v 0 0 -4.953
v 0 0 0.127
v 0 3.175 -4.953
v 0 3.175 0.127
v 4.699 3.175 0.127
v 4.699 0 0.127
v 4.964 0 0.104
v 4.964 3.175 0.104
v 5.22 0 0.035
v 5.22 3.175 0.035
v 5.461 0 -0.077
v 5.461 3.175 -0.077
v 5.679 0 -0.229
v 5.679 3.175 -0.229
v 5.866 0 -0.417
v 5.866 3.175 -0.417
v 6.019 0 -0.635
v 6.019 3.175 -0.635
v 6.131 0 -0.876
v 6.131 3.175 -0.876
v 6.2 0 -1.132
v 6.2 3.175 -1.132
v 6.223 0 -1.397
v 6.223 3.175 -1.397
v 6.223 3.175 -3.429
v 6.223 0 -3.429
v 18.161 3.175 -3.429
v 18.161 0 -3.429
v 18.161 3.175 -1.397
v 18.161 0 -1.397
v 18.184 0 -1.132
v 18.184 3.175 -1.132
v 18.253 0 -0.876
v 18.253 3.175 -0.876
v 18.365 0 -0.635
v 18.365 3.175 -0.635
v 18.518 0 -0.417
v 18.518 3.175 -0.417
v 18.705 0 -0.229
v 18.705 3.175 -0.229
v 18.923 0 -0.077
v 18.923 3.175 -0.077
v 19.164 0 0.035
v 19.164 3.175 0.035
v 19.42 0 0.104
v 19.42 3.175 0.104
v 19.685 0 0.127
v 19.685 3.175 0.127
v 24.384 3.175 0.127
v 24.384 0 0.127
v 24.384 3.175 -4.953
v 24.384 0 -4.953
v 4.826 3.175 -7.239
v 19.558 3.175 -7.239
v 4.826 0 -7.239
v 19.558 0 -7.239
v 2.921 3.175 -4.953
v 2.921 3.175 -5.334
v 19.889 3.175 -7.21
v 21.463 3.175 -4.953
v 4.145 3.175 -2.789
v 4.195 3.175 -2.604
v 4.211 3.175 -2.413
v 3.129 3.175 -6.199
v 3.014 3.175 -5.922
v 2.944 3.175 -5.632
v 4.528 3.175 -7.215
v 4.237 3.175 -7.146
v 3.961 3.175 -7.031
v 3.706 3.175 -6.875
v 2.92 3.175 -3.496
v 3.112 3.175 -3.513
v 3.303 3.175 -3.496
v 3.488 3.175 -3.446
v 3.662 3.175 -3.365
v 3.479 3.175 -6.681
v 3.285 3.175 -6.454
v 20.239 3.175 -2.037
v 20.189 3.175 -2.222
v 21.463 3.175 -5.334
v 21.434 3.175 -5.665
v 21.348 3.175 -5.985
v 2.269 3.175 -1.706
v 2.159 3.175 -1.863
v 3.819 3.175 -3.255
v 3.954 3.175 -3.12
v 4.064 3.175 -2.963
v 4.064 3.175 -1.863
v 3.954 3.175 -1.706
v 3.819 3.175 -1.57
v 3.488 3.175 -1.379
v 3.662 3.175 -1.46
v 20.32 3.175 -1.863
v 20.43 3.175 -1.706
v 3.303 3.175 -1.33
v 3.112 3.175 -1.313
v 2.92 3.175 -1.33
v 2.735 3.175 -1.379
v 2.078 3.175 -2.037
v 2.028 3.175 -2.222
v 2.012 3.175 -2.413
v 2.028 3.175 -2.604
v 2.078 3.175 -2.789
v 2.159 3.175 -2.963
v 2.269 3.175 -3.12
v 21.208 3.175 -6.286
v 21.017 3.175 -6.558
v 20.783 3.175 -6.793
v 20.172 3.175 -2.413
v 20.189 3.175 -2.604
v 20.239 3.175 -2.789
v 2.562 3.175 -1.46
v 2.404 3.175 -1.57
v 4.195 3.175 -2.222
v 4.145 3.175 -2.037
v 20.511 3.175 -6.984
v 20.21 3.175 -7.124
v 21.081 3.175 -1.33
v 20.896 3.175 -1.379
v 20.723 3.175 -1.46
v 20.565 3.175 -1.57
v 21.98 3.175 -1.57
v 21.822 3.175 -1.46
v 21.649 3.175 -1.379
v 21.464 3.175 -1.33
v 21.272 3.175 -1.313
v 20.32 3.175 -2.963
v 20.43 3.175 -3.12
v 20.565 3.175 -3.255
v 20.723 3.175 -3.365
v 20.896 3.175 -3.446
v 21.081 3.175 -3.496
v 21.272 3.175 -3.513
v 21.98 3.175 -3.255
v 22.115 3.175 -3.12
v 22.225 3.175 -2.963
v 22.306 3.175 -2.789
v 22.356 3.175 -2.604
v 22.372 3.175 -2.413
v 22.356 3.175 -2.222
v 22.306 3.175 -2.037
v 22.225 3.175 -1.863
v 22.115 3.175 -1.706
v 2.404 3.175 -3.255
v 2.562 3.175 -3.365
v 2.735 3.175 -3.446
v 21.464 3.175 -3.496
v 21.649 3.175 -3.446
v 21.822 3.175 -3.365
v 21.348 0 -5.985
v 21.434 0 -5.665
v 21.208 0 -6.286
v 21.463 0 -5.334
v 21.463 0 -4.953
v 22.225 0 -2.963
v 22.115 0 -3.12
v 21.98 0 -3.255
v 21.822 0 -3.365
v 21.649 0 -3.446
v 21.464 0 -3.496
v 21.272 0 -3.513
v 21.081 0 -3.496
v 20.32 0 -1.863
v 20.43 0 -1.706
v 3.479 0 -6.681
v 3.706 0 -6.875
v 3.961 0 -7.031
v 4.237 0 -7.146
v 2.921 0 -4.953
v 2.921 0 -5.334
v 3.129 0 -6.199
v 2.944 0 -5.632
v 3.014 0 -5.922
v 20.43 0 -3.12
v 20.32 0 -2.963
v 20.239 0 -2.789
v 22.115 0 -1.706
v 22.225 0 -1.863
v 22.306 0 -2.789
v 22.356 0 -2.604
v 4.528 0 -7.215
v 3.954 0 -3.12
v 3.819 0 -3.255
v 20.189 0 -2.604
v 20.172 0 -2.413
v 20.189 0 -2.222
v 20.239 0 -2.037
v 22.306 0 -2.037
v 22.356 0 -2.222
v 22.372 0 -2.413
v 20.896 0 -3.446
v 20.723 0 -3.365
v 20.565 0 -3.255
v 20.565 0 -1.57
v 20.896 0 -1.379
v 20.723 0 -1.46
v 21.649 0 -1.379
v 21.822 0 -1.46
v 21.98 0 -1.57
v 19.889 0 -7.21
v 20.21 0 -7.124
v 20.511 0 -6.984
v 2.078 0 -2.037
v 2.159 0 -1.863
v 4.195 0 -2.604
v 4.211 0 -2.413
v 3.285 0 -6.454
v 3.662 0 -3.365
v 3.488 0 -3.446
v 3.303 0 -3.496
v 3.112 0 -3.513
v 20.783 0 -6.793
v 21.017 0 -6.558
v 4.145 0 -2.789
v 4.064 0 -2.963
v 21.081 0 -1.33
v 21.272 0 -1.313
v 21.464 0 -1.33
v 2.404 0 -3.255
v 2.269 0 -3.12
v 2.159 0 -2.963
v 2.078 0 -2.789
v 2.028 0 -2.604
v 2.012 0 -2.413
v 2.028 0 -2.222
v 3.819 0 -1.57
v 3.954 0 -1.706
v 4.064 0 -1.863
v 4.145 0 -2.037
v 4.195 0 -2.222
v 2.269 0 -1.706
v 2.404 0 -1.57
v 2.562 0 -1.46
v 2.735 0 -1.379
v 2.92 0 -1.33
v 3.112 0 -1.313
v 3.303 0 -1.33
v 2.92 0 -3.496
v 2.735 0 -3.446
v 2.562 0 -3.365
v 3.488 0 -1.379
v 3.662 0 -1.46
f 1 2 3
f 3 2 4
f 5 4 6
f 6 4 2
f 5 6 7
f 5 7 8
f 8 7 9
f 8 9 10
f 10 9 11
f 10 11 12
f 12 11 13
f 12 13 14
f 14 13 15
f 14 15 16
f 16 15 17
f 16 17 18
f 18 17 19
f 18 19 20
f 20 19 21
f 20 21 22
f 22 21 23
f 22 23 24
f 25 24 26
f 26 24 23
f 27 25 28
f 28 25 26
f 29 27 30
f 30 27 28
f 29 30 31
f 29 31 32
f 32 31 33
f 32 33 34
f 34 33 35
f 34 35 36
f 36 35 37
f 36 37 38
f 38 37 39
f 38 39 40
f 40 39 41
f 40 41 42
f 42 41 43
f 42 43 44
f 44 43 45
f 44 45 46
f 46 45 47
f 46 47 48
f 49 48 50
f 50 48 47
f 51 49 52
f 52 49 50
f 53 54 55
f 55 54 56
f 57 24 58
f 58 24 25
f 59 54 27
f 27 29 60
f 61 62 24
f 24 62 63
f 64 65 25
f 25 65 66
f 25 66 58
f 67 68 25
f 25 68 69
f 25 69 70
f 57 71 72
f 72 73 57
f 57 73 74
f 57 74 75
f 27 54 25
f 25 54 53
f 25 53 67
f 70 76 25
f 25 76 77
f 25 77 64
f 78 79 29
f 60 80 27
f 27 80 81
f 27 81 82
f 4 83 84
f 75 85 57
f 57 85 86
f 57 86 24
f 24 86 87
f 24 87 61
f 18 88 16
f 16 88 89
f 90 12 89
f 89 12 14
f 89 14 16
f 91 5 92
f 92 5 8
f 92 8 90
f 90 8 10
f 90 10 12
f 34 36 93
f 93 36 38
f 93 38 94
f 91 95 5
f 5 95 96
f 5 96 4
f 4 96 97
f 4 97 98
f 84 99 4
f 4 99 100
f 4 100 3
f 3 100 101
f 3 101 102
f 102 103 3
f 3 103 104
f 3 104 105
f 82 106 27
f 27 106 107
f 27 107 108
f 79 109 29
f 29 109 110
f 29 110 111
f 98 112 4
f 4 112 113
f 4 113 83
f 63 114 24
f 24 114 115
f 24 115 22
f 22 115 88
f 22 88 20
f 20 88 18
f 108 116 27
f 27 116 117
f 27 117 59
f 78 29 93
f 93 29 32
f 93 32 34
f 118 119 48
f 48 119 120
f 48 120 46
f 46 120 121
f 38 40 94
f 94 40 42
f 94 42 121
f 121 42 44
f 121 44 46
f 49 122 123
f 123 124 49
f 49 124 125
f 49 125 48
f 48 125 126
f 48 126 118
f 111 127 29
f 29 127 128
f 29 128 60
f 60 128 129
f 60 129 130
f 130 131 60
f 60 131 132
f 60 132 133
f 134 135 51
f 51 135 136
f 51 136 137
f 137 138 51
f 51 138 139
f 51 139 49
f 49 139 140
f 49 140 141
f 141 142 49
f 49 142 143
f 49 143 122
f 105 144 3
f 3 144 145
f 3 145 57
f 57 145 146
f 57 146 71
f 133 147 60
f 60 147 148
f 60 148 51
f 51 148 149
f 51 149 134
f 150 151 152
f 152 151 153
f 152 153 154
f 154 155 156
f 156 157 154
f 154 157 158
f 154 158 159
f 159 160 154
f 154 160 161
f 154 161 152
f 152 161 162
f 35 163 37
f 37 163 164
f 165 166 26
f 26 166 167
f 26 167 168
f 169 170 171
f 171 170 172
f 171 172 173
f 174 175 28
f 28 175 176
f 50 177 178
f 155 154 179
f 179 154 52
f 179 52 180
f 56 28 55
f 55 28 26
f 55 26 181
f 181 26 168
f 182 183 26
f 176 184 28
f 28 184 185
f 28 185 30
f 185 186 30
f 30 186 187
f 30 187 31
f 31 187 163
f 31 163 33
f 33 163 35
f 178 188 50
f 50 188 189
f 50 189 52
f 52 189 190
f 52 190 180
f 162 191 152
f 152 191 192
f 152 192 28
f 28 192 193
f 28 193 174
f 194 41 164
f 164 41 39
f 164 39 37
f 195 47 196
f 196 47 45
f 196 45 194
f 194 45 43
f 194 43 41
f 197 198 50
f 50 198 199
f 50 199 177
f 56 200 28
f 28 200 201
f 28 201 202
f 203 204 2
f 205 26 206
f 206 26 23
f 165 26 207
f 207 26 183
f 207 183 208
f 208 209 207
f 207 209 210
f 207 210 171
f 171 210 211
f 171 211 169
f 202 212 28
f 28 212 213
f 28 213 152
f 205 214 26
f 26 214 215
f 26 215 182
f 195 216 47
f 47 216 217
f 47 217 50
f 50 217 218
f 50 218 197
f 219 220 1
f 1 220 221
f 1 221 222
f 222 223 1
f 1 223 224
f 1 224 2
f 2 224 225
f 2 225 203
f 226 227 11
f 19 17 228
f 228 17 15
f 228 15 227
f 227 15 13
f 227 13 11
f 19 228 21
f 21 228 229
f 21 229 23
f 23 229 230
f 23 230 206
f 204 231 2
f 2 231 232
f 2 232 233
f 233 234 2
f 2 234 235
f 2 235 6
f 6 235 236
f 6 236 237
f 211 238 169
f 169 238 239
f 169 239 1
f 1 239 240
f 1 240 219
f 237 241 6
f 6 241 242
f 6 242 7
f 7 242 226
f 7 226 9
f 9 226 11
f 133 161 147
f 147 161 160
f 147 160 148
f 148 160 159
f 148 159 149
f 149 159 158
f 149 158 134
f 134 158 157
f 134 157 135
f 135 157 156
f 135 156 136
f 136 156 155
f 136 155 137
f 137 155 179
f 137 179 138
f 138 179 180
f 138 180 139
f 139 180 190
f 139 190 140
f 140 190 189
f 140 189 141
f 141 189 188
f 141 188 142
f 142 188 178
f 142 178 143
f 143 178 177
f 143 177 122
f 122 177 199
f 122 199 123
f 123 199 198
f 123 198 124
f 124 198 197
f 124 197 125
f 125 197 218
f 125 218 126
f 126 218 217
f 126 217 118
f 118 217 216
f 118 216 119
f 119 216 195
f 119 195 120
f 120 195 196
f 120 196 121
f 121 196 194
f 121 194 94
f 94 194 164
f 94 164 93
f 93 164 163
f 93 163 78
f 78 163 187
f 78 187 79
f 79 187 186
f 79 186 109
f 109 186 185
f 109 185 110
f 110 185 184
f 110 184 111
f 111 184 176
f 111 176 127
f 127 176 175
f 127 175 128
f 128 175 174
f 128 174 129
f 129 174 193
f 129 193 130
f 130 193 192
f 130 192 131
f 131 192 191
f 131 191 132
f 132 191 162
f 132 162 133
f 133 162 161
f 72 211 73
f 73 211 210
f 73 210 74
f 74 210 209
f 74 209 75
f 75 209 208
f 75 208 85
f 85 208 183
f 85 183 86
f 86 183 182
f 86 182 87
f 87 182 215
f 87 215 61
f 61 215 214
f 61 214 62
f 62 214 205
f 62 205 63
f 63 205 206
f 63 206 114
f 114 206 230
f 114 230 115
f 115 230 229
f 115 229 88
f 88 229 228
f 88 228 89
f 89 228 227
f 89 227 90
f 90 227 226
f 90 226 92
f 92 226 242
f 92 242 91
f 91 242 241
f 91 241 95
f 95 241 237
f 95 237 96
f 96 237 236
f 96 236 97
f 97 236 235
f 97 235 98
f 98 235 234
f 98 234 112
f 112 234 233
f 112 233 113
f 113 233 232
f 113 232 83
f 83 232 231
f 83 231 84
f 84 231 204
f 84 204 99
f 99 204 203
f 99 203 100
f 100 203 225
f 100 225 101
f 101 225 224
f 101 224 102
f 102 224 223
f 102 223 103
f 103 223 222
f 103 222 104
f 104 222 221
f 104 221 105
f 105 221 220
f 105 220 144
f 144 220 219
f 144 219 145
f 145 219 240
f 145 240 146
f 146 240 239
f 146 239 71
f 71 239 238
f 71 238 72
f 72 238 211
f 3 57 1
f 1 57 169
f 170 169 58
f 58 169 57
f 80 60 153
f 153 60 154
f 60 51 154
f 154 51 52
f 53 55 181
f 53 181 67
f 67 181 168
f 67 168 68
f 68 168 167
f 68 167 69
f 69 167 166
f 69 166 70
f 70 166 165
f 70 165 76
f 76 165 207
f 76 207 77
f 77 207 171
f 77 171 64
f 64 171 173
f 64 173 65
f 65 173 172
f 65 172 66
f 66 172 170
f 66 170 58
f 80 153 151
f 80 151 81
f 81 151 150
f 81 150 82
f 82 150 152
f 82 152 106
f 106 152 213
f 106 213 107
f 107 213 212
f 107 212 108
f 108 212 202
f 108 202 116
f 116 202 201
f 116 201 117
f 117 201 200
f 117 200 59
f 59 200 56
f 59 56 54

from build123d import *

# Parameters (mm, degrees)
BOSS_EXTRUDE1_DEPTH  = 3.175
M2_CLEARANCE_HOLE1_D = 2.2
SKETCH4_W            = 2.921
SKETCH4_H            = 2.286
CUT_EXTRUDE1_DEPTH   = 4.175
FILLET1_R            = 1.905


with BuildPart() as part:
    # Sketch1 → Boss-Extrude1 (new body)
    with BuildSketch(Plane(origin=(0, 0, 0), x_dir=(1, 0, 0), z_dir=(0, 1, 0))):
        with BuildLine():
            Line((0, -0.127190553), (4.699, -0.127190553))
            ThreePointArc((4.699, -0.127190553), (5.776630735, 0.319178713), (6.223, 1.396809447))
            Line((6.223, 1.396809447), (6.223, 3.428809447))
            Line((6.223, 3.428809447), (18.161, 3.428809447))
            Line((18.161, 3.428809447), (18.161, 1.396809447))
            ThreePointArc((18.161, 1.396809447), (18.607369265, 0.319178713), (19.685, -0.127190553))
            Line((19.685, -0.127190553), (24.384, -0.127190553))
            Line((24.384, -0.127190553), (24.384, 7.238809447))
            Line((24.384, 7.238809447), (0, 7.238809447))
            Line((0, 7.238809447), (0, -0.127190553))
        make_face()
    extrude(amount=BOSS_EXTRUDE1_DEPTH)

    # M2 Clearance Hole1 (through all)
    with Locations(Plane(origin=(0, 0, 0), x_dir=(-1, 0, 0), z_dir=(0, -1, 0))):
        with Locations((-3.1115, 2.412809447), (-21.2725, 2.412809447)):
            Hole(M2_CLEARANCE_HOLE1_D / 2)

    # Sketch4 → Cut-Extrude1 (cut, through all)
    with BuildSketch(Plane.XZ):
        with Locations((22.9235, -6.095809447)):
            Rectangle(SKETCH4_W, SKETCH4_H)
        with Locations((1.4605, -6.095809447)):
            Rectangle(SKETCH4_W, SKETCH4_H)
    extrude(amount=-CUT_EXTRUDE1_DEPTH, mode=Mode.SUBTRACT)

    # Fillet1
    fillet1_edges = [part.edges().sort_by_distance(p)[0] for p in [
        (21.463, 1.5875, -7.238809447),
        (2.921, 1.5875, -7.238809447),
    ]]
    fillet(fillet1_edges, radius=FILLET1_R)


solid = part.part
